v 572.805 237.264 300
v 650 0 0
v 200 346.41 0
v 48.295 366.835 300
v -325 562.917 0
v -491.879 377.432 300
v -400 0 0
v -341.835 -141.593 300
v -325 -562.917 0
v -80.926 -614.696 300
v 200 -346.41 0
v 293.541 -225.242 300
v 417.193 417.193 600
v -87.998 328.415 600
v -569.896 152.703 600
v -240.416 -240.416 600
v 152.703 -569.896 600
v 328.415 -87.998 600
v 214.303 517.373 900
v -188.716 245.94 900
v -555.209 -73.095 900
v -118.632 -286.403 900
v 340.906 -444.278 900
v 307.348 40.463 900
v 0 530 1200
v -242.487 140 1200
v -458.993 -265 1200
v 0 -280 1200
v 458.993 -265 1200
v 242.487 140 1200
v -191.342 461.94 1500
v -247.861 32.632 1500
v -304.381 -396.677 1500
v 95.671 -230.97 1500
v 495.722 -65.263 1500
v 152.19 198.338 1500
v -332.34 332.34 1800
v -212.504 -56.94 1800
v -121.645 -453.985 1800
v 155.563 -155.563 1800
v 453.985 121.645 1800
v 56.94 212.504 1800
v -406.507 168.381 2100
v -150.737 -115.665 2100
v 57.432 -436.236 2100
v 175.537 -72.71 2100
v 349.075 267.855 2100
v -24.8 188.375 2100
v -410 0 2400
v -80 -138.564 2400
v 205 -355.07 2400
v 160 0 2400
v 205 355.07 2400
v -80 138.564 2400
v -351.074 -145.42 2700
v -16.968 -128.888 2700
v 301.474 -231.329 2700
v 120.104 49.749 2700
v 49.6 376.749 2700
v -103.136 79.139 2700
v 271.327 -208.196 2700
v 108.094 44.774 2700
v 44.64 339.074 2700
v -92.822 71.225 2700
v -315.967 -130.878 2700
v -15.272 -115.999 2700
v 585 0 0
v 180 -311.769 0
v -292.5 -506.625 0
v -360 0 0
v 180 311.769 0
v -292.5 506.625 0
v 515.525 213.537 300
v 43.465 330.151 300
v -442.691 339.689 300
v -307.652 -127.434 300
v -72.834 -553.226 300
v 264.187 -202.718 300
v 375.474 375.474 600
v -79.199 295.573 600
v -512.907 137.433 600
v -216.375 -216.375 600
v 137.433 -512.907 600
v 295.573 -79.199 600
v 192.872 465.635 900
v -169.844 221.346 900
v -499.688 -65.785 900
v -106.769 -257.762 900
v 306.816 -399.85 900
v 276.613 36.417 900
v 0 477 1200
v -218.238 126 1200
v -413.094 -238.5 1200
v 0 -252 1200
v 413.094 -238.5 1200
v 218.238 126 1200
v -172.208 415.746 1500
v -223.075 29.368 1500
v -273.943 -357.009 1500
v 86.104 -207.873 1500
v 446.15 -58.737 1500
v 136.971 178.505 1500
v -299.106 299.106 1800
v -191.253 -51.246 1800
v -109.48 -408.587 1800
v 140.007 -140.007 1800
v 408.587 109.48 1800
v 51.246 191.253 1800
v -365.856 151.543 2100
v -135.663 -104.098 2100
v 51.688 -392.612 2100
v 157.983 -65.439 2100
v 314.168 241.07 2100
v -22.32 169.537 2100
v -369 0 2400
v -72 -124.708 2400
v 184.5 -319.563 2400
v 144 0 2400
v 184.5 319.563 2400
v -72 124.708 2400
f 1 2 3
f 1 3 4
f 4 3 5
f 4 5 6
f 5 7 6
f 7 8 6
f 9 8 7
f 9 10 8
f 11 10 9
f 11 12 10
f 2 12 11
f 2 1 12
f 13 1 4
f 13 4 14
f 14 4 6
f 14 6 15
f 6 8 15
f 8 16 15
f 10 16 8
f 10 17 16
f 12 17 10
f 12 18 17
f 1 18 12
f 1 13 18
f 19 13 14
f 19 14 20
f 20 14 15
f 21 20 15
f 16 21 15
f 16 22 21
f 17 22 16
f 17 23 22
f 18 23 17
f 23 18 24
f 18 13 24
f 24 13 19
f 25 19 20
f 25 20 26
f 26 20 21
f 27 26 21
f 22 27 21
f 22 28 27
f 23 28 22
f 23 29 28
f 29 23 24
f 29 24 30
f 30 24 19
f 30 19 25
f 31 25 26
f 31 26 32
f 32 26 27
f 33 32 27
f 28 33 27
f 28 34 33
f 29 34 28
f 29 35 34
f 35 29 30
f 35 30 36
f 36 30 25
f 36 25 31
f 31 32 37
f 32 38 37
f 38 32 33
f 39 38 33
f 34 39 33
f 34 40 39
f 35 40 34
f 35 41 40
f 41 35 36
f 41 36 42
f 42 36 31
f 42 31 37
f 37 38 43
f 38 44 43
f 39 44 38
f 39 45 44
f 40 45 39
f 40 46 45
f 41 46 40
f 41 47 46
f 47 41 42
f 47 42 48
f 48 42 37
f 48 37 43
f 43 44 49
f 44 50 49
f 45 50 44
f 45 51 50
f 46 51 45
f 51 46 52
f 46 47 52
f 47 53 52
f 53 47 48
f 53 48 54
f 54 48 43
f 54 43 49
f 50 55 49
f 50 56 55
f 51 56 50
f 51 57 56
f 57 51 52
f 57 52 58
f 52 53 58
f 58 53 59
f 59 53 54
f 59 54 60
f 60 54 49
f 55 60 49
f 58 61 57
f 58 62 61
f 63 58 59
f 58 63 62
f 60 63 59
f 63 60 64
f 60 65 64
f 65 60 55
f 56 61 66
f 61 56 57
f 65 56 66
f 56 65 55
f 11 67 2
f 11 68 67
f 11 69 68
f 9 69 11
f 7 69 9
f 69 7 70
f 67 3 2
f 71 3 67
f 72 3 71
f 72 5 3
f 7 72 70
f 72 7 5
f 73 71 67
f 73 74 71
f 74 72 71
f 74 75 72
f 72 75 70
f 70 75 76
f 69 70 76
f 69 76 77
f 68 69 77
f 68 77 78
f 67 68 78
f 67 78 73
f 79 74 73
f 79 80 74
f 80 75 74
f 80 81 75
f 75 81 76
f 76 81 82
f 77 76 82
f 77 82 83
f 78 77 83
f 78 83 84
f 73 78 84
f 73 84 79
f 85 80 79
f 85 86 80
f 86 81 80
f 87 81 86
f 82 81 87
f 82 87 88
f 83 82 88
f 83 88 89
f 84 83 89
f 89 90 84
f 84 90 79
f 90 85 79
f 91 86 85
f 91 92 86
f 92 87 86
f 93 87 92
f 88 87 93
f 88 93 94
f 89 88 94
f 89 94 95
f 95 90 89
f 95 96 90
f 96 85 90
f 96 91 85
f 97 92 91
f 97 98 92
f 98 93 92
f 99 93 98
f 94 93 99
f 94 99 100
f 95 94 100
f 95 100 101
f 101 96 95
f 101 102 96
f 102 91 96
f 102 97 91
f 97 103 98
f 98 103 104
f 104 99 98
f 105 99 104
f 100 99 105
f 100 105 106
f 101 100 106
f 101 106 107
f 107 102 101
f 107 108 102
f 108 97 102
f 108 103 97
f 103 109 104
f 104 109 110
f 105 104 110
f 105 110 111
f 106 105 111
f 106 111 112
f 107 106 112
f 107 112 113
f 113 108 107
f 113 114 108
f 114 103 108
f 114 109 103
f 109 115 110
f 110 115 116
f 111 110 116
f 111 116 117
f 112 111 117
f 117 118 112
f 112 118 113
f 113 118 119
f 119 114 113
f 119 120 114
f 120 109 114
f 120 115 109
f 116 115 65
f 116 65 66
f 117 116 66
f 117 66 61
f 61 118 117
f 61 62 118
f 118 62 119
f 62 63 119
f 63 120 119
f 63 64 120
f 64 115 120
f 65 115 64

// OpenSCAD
difference() {
	polyhedron(faces = [[0, 6, 1], [1, 6, 7], [1, 7, 2], [2, 7, 8], [2, 8, 3], [3, 8, 9], [3, 9, 4], [4, 9, 10], [4, 10, 5], [5, 10, 11], [5, 11, 0], [0, 11, 6], [6, 12, 7], [7, 12, 13], [7, 13, 8], [8, 13, 14], [8, 14, 9], [9, 14, 15], [9, 15, 10], [10, 15, 16], [10, 16, 11], [11, 16, 17], [11, 17, 6], [6, 17, 12], [12, 18, 13], [13, 18, 19], [13, 19, 14], [14, 19, 20], [14, 20, 15], [15, 20, 21], [15, 21, 16], [16, 21, 22], [16, 22, 17], [17, 22, 23], [17, 23, 12], [12, 23, 18], [18, 24, 19], [19, 24, 25], [19, 25, 20], [20, 25, 26], [20, 26, 21], [21, 26, 27], [21, 27, 22], [22, 27, 28], [22, 28, 23], [23, 28, 29], [23, 29, 18], [18, 29, 24], [24, 30, 25], [25, 30, 31], [25, 31, 26], [26, 31, 32], [26, 32, 27], [27, 32, 33], [27, 33, 28], [28, 33, 34], [28, 34, 29], [29, 34, 35], [29, 35, 24], [24, 35, 30], [30, 36, 31], [31, 36, 37], [31, 37, 32], [32, 37, 38], [32, 38, 33], [33, 38, 39], [33, 39, 34], [34, 39, 40], [34, 40, 35], [35, 40, 41], [35, 41, 30], [30, 41, 36], [36, 42, 37], [37, 42, 43], [37, 43, 38], [38, 43, 44], [38, 44, 39], [39, 44, 45], [39, 45, 40], [40, 45, 46], [40, 46, 41], [41, 46, 47], [41, 47, 36], [36, 47, 42], [42, 48, 43], [43, 48, 49], [43, 49, 44], [44, 49, 50], [44, 50, 45], [45, 50, 51], [45, 51, 46], [46, 51, 52], [46, 52, 47], [47, 52, 53], [47, 53, 42], [42, 53, 48], [48, 54, 49], [49, 54, 55], [49, 55, 50], [50, 55, 56], [50, 56, 51], [51, 56, 57], [51, 57, 52], [52, 57, 58], [52, 58, 53], [53, 58, 59], [53, 59, 48], [48, 59, 54], [1, 60, 0], [54, 61, 55], [2, 60, 1], [55, 61, 56], [3, 60, 2], [56, 61, 57], [4, 60, 3], [57, 61, 58], [5, 60, 4], [58, 61, 59], [0, 60, 5], [59, 61, 54]], points = [[650.0000000000, 0.0000000000, 0.0000000000], [200.0000000000, 346.4101615138, 0.0000000000], [-325.0000000000, 562.9165124599, 0.0000000000], [-400.0000000000, 0.0000000000, 0.0000000000], [-325.0000000000, -562.9165124599, 0.0000000000], [200.0000000000, -346.4101615138, 0.0000000000], [572.8053101570, 237.2637280664, 300.0000000000], [48.2946911214, 366.8345987083, 300.0000000000], [-491.8790709806, 377.4320859854, 300.0000000000], [-341.8354270292, -141.5928699751, 300.0000000000], [-80.9262391764, -614.6958140518, 300.0000000000], [293.5407359078, -225.2417287332, 300.0000000000], [417.1930009001, 417.1930009001, 600.0000000000], [-87.9984753349, 328.4147809383, 600.0000000000], [-569.8962375106, 152.7032366105, 600.0000000000], [-240.4163056034, -240.4163056034, 600.0000000000], [152.7032366105, -569.8962375106, 600.0000000000], [328.4147809383, -87.9984753349, 600.0000000000], [214.3027221245, 517.3725382063, 900.0000000000], [-188.7160429927, 245.9395354903, 900.0000000000], [-555.2091223693, -73.0946676432, 900.0000000000], [-118.6318640332, -286.4026550785, 900.0000000000], [340.9064002449, -444.2778705631, 900.0000000000], [307.3479070259, 40.4631195882, 900.0000000000], [0.0000000000, 530.0000000000, 1200.0000000000], [-242.4871130596, 140.0000000000, 1200.0000000000], [-458.9934640058, -265.0000000000, 1200.0000000000], [-0.0000000000, -280.0000000000, 1200.0000000000], [458.9934640058, -265.0000000000, 1200.0000000000], [242.4871130596, 140.0000000000, 1200.0000000000], [-191.3417161825, 461.9397662556, 1500.0000000000], [-247.8612153435, 32.6315480550, 1500.0000000000], [-304.3807145044, -396.6766701456, 1500.0000000000], [95.6708580913, -230.9698831278, 1500.0000000000], [495.7224306869, -65.2630961100, 1500.0000000000], [152.1903572522, 198.3383350728, 1500.0000000000], [-332.3401871577, 332.3401871577, 1800.0000000000], [-212.5036817836, -56.9401899226, 1800.0000000000], [-121.6449511982, -453.9851383559, 1800.0000000000], [155.5634918610, -155.5634918610, 1800.0000000000], [453.9851383559, 121.6449511982, 1800.0000000000], [56.9401899226, 212.5036817836, 1800.0000000000], [-406.5069943050, 168.3807102406, 2100.0000000000], [-150.7371346553, -115.6646715117, 2100.0000000000], [57.4315245768, -436.2357390045, 2100.0000000000], [175.5371111771, -72.7098521494, 2100.0000000000], [349.0754697281, 267.8550287638, 2100.0000000000], [-24.7999765218, 188.3745236610, 2100.0000000000], [-410.0000000000, 0.0000000000, 2400.0000000000], [-80.0000000000, -138.5640646055, 2400.0000000000], [205.0000000000, -355.0704155516, 2400.0000000000], [160.0000000000, -0.0000000000, 2400.0000000000], [205.0000000000, 355.0704155516, 2400.0000000000], [-80.0000000000, 138.5640646055, 2400.0000000000], [-351.0742223543, -145.4197042987, 2700.0000000000], [-16.9684049886, -128.8878319786, 2700.0000000000], [301.4742693107, -231.3293430233, 2700.0000000000], [120.1043392265, 49.7488462075, 2700.0000000000], [49.5999530436, 376.7490473220, 2700.0000000000], [-103.1359342379, 79.1389857711, 2700.0000000000], [-0.0000000000, 0.0000000000, 0.0000000000], [0.0000000000, -0.0000000000, 2700.0000000000]]);
	scale(v = [0.9000000000, 0.9000000000, 1]) {
		polyhedron(faces = [[0, 6, 1], [1, 6, 7], [1, 7, 2], [2, 7, 8], [2, 8, 3], [3, 8, 9], [3, 9, 4], [4, 9, 10], [4, 10, 5], [5, 10, 11], [5, 11, 0], [0, 11, 6], [6, 12, 7], [7, 12, 13], [7, 13, 8], [8, 13, 14], [8, 14, 9], [9, 14, 15], [9, 15, 10], [10, 15, 16], [10, 16, 11], [11, 16, 17], [11, 17, 6], [6, 17, 12], [12, 18, 13], [13, 18, 19], [13, 19, 14], [14, 19, 20], [14, 20, 15], [15, 20, 21], [15, 21, 16], [16, 21, 22], [16, 22, 17], [17, 22, 23], [17, 23, 12], [12, 23, 18], [18, 24, 19], [19, 24, 25], [19, 25, 20], [20, 25, 26], [20, 26, 21], [21, 26, 27], [21, 27, 22], [22, 27, 28], [22, 28, 23], [23, 28, 29], [23, 29, 18], [18, 29, 24], [24, 30, 25], [25, 30, 31], [25, 31, 26], [26, 31, 32], [26, 32, 27], [27, 32, 33], [27, 33, 28], [28, 33, 34], [28, 34, 29], [29, 34, 35], [29, 35, 24], [24, 35, 30], [30, 36, 31], [31, 36, 37], [31, 37, 32], [32, 37, 38], [32, 38, 33], [33, 38, 39], [33, 39, 34], [34, 39, 40], [34, 40, 35], [35, 40, 41], [35, 41, 30], [30, 41, 36], [36, 42, 37], [37, 42, 43], [37, 43, 38], [38, 43, 44], [38, 44, 39], [39, 44, 45], [39, 45, 40], [40, 45, 46], [40, 46, 41], [41, 46, 47], [41, 47, 36], [36, 47, 42], [42, 48, 43], [43, 48, 49], [43, 49, 44], [44, 49, 50], [44, 50, 45], [45, 50, 51], [45, 51, 46], [46, 51, 52], [46, 52, 47], [47, 52, 53], [47, 53, 42], [42, 53, 48], [48, 54, 49], [49, 54, 55], [49, 55, 50], [50, 55, 56], [50, 56, 51], [51, 56, 57], [51, 57, 52], [52, 57, 58], [52, 58, 53], [53, 58, 59], [53, 59, 48], [48, 59, 54], [1, 60, 0], [54, 61, 55], [2, 60, 1], [55, 61, 56], [3, 60, 2], [56, 61, 57], [4, 60, 3], [57, 61, 58], [5, 60, 4], [58, 61, 59], [0, 60, 5], [59, 61, 54]], points = [[650.0000000000, 0.0000000000, 0.0000000000], [200.0000000000, 346.4101615138, 0.0000000000], [-325.0000000000, 562.9165124599, 0.0000000000], [-400.0000000000, 0.0000000000, 0.0000000000], [-325.0000000000, -562.9165124599, 0.0000000000], [200.0000000000, -346.4101615138, 0.0000000000], [572.8053101570, 237.2637280664, 300.0000000000], [48.2946911214, 366.8345987083, 300.0000000000], [-491.8790709806, 377.4320859854, 300.0000000000], [-341.8354270292, -141.5928699751, 300.0000000000], [-80.9262391764, -614.6958140518, 300.0000000000], [293.5407359078, -225.2417287332, 300.0000000000], [417.1930009001, 417.1930009001, 600.0000000000], [-87.9984753349, 328.4147809383, 600.0000000000], [-569.8962375106, 152.7032366105, 600.0000000000], [-240.4163056034, -240.4163056034, 600.0000000000], [152.7032366105, -569.8962375106, 600.0000000000], [328.4147809383, -87.9984753349, 600.0000000000], [214.3027221245, 517.3725382063, 900.0000000000], [-188.7160429927, 245.9395354903, 900.0000000000], [-555.2091223693, -73.0946676432, 900.0000000000], [-118.6318640332, -286.4026550785, 900.0000000000], [340.9064002449, -444.2778705631, 900.0000000000], [307.3479070259, 40.4631195882, 900.0000000000], [0.0000000000, 530.0000000000, 1200.0000000000], [-242.4871130596, 140.0000000000, 1200.0000000000], [-458.9934640058, -265.0000000000, 1200.0000000000], [-0.0000000000, -280.0000000000, 1200.0000000000], [458.9934640058, -265.0000000000, 1200.0000000000], [242.4871130596, 140.0000000000, 1200.0000000000], [-191.3417161825, 461.9397662556, 1500.0000000000], [-247.8612153435, 32.6315480550, 1500.0000000000], [-304.3807145044, -396.6766701456, 1500.0000000000], [95.6708580913, -230.9698831278, 1500.0000000000], [495.7224306869, -65.2630961100, 1500.0000000000], [152.1903572522, 198.3383350728, 1500.0000000000], [-332.3401871577, 332.3401871577, 1800.0000000000], [-212.5036817836, -56.9401899226, 1800.0000000000], [-121.6449511982, -453.9851383559, 1800.0000000000], [155.5634918610, -155.5634918610, 1800.0000000000], [453.9851383559, 121.6449511982, 1800.0000000000], [56.9401899226, 212.5036817836, 1800.0000000000], [-406.5069943050, 168.3807102406, 2100.0000000000], [-150.7371346553, -115.6646715117, 2100.0000000000], [57.4315245768, -436.2357390045, 2100.0000000000], [175.5371111771, -72.7098521494, 2100.0000000000], [349.0754697281, 267.8550287638, 2100.0000000000], [-24.7999765218, 188.3745236610, 2100.0000000000], [-410.0000000000, 0.0000000000, 2400.0000000000], [-80.0000000000, -138.5640646055, 2400.0000000000], [205.0000000000, -355.0704155516, 2400.0000000000], [160.0000000000, -0.0000000000, 2400.0000000000], [205.0000000000, 355.0704155516, 2400.0000000000], [-80.0000000000, 138.5640646055, 2400.0000000000], [-351.0742223543, -145.4197042987, 2700.0000000000], [-16.9684049886, -128.8878319786, 2700.0000000000], [301.4742693107, -231.3293430233, 2700.0000000000], [120.1043392265, 49.7488462075, 2700.0000000000], [49.5999530436, 376.7490473220, 2700.0000000000], [-103.1359342379, 79.1389857711, 2700.0000000000], [-0.0000000000, 0.0000000000, 0.0000000000], [0.0000000000, -0.0000000000, 2700.0000000000]]);
	}
}
